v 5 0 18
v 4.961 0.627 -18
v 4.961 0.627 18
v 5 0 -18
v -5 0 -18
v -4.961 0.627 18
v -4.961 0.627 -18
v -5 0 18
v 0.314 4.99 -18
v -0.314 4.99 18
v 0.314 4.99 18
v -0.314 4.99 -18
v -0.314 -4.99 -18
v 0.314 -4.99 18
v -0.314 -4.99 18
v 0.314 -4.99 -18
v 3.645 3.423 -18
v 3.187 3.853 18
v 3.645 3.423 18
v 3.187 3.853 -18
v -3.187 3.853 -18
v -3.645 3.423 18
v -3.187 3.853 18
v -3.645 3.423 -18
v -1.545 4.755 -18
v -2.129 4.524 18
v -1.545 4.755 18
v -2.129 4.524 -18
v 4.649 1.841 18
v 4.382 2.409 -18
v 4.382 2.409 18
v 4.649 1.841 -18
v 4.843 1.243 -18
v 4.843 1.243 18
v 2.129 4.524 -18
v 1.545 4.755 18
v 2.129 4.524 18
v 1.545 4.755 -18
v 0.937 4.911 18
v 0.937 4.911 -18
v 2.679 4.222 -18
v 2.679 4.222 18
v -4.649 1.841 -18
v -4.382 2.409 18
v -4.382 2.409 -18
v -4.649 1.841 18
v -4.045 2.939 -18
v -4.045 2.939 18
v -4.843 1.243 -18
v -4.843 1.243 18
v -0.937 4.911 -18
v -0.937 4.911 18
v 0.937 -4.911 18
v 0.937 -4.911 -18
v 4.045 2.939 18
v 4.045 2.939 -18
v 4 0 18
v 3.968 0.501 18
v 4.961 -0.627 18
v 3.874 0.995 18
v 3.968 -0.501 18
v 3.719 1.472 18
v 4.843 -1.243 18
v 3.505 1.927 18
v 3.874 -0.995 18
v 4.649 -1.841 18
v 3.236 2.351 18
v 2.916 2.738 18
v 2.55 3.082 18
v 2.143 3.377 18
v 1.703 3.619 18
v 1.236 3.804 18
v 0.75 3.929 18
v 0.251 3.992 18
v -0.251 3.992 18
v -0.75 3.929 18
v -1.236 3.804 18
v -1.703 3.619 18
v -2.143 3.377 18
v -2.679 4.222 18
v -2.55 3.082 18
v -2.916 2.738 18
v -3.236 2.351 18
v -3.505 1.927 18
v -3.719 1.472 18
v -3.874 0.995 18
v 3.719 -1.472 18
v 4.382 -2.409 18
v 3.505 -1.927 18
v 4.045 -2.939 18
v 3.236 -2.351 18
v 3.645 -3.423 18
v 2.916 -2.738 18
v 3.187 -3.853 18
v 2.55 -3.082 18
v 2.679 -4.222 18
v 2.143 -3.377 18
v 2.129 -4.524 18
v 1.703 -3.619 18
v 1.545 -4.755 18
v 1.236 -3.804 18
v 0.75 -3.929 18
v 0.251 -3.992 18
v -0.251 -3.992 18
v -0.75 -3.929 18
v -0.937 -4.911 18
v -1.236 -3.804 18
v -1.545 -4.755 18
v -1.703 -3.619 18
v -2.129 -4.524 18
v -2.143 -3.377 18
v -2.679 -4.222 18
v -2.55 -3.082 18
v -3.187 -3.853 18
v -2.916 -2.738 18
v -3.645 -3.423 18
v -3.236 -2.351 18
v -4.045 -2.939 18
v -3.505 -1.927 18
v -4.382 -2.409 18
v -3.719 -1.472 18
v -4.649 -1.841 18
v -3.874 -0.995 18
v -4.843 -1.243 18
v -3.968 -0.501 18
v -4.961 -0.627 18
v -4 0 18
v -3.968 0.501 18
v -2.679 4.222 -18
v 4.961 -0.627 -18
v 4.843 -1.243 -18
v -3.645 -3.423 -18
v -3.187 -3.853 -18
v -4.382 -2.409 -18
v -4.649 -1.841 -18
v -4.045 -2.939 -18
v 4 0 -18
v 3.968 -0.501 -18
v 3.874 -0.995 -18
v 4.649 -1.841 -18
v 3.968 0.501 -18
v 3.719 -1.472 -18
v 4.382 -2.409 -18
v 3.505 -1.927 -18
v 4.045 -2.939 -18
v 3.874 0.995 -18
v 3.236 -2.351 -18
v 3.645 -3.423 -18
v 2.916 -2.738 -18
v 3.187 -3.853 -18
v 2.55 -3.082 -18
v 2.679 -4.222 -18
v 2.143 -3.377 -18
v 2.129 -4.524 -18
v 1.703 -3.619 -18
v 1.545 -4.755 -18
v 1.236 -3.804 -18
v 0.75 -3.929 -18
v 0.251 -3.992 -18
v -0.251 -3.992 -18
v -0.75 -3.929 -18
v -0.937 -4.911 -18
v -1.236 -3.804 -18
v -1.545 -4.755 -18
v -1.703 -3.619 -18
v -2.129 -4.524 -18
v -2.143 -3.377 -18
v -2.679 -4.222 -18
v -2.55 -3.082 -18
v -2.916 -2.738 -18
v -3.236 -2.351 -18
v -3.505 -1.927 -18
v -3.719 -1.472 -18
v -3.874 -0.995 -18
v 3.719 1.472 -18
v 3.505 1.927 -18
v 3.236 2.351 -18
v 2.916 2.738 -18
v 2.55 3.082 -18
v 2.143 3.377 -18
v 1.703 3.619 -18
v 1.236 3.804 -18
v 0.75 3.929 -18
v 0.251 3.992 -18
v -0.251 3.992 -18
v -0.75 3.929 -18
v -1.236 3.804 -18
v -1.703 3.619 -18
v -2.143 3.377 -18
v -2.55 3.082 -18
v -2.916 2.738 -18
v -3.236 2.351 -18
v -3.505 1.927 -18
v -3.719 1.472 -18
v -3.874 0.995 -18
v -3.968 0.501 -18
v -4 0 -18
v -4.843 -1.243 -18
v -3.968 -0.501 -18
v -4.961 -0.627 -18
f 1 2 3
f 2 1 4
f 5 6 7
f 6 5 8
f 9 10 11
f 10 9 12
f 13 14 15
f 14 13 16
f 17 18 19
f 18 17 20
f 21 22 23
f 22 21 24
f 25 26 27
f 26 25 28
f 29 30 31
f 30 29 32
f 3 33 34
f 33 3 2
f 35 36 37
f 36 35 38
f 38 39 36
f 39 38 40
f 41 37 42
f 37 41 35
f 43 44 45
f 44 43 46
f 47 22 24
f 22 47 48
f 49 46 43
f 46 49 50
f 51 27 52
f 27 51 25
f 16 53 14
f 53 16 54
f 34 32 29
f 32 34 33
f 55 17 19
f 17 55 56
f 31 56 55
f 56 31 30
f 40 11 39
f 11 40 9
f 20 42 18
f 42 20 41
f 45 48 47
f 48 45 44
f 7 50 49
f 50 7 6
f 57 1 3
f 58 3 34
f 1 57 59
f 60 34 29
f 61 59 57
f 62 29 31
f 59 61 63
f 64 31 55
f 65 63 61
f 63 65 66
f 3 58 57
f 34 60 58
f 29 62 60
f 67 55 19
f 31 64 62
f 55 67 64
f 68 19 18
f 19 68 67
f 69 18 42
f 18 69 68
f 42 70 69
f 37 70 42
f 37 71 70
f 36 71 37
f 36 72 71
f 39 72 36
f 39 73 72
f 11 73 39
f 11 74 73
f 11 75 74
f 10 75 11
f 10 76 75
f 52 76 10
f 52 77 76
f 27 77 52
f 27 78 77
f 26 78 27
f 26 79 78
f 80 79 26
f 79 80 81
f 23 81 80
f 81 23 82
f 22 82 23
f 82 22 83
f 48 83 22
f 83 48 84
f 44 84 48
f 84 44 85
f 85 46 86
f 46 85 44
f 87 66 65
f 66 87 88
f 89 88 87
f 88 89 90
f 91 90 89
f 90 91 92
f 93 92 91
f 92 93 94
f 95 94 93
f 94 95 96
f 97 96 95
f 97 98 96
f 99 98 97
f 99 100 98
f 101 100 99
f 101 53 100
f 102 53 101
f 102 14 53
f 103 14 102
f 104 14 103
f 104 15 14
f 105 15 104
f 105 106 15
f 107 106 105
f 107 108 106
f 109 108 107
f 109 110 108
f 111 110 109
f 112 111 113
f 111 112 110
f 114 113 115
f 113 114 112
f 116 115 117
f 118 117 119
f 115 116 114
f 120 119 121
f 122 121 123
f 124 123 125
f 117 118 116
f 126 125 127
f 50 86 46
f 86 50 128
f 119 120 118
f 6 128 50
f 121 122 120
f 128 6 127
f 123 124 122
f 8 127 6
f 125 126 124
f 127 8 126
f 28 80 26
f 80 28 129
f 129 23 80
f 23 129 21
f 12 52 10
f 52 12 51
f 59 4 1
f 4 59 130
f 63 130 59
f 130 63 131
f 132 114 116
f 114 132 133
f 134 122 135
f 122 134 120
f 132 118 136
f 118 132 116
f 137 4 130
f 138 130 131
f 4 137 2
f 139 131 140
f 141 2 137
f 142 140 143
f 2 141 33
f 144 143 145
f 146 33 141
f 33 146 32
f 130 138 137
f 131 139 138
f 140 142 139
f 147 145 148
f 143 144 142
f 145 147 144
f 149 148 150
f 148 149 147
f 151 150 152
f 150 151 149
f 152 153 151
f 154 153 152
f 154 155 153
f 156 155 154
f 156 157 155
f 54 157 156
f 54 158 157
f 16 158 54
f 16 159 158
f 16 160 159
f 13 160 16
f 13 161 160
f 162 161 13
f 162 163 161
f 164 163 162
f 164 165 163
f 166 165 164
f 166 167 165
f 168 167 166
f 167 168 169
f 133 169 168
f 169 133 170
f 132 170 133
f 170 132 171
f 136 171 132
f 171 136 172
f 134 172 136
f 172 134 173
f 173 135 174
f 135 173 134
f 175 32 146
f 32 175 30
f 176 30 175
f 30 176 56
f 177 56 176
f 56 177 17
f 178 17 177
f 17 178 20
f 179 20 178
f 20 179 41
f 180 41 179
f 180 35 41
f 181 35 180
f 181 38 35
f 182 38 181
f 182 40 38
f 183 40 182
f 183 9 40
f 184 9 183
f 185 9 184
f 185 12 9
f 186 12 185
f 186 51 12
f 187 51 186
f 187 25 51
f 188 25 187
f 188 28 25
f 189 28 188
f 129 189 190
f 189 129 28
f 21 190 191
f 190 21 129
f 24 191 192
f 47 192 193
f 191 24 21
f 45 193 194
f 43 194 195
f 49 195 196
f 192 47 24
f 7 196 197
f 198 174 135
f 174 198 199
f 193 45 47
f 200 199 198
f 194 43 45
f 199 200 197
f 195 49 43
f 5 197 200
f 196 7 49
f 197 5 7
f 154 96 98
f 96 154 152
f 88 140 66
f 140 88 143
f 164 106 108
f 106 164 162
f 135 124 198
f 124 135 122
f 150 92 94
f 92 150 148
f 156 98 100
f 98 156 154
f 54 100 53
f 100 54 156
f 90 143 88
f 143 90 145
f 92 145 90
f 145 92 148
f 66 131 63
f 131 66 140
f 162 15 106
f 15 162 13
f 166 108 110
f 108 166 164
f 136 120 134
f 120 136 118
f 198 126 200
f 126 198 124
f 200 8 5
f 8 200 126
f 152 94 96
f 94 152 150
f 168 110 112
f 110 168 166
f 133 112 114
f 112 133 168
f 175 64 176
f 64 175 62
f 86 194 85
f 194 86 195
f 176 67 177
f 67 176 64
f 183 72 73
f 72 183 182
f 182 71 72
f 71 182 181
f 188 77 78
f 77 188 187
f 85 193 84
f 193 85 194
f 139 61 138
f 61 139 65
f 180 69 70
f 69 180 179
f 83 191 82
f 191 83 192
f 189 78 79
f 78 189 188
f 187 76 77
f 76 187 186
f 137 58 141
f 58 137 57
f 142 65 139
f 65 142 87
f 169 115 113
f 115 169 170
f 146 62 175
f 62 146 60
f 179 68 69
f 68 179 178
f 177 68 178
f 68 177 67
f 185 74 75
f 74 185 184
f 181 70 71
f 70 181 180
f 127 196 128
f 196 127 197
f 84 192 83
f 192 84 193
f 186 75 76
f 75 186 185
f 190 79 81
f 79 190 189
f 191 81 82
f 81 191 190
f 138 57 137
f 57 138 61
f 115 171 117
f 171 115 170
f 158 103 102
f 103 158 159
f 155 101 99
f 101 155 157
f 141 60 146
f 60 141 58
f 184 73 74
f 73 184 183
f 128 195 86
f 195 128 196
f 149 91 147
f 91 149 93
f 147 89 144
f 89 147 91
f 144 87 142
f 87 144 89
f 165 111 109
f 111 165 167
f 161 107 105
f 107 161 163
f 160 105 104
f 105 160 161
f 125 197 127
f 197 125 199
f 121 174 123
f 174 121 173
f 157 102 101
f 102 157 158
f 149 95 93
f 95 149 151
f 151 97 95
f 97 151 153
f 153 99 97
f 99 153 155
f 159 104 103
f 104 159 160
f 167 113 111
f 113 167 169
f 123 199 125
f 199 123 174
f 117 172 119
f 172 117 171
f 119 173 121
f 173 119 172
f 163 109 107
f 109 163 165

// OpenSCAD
$fn = 50;


difference() {
	union() {
		translate(v = [0, 0, -18.0000000000]) {
			cylinder(h = 36, r = 5.0000000000);
		}
	}
	union() {
		translate(v = [0, 0, -100.0000000000]) {
			cylinder(h = 200, r = 4);
		}
	}
}
